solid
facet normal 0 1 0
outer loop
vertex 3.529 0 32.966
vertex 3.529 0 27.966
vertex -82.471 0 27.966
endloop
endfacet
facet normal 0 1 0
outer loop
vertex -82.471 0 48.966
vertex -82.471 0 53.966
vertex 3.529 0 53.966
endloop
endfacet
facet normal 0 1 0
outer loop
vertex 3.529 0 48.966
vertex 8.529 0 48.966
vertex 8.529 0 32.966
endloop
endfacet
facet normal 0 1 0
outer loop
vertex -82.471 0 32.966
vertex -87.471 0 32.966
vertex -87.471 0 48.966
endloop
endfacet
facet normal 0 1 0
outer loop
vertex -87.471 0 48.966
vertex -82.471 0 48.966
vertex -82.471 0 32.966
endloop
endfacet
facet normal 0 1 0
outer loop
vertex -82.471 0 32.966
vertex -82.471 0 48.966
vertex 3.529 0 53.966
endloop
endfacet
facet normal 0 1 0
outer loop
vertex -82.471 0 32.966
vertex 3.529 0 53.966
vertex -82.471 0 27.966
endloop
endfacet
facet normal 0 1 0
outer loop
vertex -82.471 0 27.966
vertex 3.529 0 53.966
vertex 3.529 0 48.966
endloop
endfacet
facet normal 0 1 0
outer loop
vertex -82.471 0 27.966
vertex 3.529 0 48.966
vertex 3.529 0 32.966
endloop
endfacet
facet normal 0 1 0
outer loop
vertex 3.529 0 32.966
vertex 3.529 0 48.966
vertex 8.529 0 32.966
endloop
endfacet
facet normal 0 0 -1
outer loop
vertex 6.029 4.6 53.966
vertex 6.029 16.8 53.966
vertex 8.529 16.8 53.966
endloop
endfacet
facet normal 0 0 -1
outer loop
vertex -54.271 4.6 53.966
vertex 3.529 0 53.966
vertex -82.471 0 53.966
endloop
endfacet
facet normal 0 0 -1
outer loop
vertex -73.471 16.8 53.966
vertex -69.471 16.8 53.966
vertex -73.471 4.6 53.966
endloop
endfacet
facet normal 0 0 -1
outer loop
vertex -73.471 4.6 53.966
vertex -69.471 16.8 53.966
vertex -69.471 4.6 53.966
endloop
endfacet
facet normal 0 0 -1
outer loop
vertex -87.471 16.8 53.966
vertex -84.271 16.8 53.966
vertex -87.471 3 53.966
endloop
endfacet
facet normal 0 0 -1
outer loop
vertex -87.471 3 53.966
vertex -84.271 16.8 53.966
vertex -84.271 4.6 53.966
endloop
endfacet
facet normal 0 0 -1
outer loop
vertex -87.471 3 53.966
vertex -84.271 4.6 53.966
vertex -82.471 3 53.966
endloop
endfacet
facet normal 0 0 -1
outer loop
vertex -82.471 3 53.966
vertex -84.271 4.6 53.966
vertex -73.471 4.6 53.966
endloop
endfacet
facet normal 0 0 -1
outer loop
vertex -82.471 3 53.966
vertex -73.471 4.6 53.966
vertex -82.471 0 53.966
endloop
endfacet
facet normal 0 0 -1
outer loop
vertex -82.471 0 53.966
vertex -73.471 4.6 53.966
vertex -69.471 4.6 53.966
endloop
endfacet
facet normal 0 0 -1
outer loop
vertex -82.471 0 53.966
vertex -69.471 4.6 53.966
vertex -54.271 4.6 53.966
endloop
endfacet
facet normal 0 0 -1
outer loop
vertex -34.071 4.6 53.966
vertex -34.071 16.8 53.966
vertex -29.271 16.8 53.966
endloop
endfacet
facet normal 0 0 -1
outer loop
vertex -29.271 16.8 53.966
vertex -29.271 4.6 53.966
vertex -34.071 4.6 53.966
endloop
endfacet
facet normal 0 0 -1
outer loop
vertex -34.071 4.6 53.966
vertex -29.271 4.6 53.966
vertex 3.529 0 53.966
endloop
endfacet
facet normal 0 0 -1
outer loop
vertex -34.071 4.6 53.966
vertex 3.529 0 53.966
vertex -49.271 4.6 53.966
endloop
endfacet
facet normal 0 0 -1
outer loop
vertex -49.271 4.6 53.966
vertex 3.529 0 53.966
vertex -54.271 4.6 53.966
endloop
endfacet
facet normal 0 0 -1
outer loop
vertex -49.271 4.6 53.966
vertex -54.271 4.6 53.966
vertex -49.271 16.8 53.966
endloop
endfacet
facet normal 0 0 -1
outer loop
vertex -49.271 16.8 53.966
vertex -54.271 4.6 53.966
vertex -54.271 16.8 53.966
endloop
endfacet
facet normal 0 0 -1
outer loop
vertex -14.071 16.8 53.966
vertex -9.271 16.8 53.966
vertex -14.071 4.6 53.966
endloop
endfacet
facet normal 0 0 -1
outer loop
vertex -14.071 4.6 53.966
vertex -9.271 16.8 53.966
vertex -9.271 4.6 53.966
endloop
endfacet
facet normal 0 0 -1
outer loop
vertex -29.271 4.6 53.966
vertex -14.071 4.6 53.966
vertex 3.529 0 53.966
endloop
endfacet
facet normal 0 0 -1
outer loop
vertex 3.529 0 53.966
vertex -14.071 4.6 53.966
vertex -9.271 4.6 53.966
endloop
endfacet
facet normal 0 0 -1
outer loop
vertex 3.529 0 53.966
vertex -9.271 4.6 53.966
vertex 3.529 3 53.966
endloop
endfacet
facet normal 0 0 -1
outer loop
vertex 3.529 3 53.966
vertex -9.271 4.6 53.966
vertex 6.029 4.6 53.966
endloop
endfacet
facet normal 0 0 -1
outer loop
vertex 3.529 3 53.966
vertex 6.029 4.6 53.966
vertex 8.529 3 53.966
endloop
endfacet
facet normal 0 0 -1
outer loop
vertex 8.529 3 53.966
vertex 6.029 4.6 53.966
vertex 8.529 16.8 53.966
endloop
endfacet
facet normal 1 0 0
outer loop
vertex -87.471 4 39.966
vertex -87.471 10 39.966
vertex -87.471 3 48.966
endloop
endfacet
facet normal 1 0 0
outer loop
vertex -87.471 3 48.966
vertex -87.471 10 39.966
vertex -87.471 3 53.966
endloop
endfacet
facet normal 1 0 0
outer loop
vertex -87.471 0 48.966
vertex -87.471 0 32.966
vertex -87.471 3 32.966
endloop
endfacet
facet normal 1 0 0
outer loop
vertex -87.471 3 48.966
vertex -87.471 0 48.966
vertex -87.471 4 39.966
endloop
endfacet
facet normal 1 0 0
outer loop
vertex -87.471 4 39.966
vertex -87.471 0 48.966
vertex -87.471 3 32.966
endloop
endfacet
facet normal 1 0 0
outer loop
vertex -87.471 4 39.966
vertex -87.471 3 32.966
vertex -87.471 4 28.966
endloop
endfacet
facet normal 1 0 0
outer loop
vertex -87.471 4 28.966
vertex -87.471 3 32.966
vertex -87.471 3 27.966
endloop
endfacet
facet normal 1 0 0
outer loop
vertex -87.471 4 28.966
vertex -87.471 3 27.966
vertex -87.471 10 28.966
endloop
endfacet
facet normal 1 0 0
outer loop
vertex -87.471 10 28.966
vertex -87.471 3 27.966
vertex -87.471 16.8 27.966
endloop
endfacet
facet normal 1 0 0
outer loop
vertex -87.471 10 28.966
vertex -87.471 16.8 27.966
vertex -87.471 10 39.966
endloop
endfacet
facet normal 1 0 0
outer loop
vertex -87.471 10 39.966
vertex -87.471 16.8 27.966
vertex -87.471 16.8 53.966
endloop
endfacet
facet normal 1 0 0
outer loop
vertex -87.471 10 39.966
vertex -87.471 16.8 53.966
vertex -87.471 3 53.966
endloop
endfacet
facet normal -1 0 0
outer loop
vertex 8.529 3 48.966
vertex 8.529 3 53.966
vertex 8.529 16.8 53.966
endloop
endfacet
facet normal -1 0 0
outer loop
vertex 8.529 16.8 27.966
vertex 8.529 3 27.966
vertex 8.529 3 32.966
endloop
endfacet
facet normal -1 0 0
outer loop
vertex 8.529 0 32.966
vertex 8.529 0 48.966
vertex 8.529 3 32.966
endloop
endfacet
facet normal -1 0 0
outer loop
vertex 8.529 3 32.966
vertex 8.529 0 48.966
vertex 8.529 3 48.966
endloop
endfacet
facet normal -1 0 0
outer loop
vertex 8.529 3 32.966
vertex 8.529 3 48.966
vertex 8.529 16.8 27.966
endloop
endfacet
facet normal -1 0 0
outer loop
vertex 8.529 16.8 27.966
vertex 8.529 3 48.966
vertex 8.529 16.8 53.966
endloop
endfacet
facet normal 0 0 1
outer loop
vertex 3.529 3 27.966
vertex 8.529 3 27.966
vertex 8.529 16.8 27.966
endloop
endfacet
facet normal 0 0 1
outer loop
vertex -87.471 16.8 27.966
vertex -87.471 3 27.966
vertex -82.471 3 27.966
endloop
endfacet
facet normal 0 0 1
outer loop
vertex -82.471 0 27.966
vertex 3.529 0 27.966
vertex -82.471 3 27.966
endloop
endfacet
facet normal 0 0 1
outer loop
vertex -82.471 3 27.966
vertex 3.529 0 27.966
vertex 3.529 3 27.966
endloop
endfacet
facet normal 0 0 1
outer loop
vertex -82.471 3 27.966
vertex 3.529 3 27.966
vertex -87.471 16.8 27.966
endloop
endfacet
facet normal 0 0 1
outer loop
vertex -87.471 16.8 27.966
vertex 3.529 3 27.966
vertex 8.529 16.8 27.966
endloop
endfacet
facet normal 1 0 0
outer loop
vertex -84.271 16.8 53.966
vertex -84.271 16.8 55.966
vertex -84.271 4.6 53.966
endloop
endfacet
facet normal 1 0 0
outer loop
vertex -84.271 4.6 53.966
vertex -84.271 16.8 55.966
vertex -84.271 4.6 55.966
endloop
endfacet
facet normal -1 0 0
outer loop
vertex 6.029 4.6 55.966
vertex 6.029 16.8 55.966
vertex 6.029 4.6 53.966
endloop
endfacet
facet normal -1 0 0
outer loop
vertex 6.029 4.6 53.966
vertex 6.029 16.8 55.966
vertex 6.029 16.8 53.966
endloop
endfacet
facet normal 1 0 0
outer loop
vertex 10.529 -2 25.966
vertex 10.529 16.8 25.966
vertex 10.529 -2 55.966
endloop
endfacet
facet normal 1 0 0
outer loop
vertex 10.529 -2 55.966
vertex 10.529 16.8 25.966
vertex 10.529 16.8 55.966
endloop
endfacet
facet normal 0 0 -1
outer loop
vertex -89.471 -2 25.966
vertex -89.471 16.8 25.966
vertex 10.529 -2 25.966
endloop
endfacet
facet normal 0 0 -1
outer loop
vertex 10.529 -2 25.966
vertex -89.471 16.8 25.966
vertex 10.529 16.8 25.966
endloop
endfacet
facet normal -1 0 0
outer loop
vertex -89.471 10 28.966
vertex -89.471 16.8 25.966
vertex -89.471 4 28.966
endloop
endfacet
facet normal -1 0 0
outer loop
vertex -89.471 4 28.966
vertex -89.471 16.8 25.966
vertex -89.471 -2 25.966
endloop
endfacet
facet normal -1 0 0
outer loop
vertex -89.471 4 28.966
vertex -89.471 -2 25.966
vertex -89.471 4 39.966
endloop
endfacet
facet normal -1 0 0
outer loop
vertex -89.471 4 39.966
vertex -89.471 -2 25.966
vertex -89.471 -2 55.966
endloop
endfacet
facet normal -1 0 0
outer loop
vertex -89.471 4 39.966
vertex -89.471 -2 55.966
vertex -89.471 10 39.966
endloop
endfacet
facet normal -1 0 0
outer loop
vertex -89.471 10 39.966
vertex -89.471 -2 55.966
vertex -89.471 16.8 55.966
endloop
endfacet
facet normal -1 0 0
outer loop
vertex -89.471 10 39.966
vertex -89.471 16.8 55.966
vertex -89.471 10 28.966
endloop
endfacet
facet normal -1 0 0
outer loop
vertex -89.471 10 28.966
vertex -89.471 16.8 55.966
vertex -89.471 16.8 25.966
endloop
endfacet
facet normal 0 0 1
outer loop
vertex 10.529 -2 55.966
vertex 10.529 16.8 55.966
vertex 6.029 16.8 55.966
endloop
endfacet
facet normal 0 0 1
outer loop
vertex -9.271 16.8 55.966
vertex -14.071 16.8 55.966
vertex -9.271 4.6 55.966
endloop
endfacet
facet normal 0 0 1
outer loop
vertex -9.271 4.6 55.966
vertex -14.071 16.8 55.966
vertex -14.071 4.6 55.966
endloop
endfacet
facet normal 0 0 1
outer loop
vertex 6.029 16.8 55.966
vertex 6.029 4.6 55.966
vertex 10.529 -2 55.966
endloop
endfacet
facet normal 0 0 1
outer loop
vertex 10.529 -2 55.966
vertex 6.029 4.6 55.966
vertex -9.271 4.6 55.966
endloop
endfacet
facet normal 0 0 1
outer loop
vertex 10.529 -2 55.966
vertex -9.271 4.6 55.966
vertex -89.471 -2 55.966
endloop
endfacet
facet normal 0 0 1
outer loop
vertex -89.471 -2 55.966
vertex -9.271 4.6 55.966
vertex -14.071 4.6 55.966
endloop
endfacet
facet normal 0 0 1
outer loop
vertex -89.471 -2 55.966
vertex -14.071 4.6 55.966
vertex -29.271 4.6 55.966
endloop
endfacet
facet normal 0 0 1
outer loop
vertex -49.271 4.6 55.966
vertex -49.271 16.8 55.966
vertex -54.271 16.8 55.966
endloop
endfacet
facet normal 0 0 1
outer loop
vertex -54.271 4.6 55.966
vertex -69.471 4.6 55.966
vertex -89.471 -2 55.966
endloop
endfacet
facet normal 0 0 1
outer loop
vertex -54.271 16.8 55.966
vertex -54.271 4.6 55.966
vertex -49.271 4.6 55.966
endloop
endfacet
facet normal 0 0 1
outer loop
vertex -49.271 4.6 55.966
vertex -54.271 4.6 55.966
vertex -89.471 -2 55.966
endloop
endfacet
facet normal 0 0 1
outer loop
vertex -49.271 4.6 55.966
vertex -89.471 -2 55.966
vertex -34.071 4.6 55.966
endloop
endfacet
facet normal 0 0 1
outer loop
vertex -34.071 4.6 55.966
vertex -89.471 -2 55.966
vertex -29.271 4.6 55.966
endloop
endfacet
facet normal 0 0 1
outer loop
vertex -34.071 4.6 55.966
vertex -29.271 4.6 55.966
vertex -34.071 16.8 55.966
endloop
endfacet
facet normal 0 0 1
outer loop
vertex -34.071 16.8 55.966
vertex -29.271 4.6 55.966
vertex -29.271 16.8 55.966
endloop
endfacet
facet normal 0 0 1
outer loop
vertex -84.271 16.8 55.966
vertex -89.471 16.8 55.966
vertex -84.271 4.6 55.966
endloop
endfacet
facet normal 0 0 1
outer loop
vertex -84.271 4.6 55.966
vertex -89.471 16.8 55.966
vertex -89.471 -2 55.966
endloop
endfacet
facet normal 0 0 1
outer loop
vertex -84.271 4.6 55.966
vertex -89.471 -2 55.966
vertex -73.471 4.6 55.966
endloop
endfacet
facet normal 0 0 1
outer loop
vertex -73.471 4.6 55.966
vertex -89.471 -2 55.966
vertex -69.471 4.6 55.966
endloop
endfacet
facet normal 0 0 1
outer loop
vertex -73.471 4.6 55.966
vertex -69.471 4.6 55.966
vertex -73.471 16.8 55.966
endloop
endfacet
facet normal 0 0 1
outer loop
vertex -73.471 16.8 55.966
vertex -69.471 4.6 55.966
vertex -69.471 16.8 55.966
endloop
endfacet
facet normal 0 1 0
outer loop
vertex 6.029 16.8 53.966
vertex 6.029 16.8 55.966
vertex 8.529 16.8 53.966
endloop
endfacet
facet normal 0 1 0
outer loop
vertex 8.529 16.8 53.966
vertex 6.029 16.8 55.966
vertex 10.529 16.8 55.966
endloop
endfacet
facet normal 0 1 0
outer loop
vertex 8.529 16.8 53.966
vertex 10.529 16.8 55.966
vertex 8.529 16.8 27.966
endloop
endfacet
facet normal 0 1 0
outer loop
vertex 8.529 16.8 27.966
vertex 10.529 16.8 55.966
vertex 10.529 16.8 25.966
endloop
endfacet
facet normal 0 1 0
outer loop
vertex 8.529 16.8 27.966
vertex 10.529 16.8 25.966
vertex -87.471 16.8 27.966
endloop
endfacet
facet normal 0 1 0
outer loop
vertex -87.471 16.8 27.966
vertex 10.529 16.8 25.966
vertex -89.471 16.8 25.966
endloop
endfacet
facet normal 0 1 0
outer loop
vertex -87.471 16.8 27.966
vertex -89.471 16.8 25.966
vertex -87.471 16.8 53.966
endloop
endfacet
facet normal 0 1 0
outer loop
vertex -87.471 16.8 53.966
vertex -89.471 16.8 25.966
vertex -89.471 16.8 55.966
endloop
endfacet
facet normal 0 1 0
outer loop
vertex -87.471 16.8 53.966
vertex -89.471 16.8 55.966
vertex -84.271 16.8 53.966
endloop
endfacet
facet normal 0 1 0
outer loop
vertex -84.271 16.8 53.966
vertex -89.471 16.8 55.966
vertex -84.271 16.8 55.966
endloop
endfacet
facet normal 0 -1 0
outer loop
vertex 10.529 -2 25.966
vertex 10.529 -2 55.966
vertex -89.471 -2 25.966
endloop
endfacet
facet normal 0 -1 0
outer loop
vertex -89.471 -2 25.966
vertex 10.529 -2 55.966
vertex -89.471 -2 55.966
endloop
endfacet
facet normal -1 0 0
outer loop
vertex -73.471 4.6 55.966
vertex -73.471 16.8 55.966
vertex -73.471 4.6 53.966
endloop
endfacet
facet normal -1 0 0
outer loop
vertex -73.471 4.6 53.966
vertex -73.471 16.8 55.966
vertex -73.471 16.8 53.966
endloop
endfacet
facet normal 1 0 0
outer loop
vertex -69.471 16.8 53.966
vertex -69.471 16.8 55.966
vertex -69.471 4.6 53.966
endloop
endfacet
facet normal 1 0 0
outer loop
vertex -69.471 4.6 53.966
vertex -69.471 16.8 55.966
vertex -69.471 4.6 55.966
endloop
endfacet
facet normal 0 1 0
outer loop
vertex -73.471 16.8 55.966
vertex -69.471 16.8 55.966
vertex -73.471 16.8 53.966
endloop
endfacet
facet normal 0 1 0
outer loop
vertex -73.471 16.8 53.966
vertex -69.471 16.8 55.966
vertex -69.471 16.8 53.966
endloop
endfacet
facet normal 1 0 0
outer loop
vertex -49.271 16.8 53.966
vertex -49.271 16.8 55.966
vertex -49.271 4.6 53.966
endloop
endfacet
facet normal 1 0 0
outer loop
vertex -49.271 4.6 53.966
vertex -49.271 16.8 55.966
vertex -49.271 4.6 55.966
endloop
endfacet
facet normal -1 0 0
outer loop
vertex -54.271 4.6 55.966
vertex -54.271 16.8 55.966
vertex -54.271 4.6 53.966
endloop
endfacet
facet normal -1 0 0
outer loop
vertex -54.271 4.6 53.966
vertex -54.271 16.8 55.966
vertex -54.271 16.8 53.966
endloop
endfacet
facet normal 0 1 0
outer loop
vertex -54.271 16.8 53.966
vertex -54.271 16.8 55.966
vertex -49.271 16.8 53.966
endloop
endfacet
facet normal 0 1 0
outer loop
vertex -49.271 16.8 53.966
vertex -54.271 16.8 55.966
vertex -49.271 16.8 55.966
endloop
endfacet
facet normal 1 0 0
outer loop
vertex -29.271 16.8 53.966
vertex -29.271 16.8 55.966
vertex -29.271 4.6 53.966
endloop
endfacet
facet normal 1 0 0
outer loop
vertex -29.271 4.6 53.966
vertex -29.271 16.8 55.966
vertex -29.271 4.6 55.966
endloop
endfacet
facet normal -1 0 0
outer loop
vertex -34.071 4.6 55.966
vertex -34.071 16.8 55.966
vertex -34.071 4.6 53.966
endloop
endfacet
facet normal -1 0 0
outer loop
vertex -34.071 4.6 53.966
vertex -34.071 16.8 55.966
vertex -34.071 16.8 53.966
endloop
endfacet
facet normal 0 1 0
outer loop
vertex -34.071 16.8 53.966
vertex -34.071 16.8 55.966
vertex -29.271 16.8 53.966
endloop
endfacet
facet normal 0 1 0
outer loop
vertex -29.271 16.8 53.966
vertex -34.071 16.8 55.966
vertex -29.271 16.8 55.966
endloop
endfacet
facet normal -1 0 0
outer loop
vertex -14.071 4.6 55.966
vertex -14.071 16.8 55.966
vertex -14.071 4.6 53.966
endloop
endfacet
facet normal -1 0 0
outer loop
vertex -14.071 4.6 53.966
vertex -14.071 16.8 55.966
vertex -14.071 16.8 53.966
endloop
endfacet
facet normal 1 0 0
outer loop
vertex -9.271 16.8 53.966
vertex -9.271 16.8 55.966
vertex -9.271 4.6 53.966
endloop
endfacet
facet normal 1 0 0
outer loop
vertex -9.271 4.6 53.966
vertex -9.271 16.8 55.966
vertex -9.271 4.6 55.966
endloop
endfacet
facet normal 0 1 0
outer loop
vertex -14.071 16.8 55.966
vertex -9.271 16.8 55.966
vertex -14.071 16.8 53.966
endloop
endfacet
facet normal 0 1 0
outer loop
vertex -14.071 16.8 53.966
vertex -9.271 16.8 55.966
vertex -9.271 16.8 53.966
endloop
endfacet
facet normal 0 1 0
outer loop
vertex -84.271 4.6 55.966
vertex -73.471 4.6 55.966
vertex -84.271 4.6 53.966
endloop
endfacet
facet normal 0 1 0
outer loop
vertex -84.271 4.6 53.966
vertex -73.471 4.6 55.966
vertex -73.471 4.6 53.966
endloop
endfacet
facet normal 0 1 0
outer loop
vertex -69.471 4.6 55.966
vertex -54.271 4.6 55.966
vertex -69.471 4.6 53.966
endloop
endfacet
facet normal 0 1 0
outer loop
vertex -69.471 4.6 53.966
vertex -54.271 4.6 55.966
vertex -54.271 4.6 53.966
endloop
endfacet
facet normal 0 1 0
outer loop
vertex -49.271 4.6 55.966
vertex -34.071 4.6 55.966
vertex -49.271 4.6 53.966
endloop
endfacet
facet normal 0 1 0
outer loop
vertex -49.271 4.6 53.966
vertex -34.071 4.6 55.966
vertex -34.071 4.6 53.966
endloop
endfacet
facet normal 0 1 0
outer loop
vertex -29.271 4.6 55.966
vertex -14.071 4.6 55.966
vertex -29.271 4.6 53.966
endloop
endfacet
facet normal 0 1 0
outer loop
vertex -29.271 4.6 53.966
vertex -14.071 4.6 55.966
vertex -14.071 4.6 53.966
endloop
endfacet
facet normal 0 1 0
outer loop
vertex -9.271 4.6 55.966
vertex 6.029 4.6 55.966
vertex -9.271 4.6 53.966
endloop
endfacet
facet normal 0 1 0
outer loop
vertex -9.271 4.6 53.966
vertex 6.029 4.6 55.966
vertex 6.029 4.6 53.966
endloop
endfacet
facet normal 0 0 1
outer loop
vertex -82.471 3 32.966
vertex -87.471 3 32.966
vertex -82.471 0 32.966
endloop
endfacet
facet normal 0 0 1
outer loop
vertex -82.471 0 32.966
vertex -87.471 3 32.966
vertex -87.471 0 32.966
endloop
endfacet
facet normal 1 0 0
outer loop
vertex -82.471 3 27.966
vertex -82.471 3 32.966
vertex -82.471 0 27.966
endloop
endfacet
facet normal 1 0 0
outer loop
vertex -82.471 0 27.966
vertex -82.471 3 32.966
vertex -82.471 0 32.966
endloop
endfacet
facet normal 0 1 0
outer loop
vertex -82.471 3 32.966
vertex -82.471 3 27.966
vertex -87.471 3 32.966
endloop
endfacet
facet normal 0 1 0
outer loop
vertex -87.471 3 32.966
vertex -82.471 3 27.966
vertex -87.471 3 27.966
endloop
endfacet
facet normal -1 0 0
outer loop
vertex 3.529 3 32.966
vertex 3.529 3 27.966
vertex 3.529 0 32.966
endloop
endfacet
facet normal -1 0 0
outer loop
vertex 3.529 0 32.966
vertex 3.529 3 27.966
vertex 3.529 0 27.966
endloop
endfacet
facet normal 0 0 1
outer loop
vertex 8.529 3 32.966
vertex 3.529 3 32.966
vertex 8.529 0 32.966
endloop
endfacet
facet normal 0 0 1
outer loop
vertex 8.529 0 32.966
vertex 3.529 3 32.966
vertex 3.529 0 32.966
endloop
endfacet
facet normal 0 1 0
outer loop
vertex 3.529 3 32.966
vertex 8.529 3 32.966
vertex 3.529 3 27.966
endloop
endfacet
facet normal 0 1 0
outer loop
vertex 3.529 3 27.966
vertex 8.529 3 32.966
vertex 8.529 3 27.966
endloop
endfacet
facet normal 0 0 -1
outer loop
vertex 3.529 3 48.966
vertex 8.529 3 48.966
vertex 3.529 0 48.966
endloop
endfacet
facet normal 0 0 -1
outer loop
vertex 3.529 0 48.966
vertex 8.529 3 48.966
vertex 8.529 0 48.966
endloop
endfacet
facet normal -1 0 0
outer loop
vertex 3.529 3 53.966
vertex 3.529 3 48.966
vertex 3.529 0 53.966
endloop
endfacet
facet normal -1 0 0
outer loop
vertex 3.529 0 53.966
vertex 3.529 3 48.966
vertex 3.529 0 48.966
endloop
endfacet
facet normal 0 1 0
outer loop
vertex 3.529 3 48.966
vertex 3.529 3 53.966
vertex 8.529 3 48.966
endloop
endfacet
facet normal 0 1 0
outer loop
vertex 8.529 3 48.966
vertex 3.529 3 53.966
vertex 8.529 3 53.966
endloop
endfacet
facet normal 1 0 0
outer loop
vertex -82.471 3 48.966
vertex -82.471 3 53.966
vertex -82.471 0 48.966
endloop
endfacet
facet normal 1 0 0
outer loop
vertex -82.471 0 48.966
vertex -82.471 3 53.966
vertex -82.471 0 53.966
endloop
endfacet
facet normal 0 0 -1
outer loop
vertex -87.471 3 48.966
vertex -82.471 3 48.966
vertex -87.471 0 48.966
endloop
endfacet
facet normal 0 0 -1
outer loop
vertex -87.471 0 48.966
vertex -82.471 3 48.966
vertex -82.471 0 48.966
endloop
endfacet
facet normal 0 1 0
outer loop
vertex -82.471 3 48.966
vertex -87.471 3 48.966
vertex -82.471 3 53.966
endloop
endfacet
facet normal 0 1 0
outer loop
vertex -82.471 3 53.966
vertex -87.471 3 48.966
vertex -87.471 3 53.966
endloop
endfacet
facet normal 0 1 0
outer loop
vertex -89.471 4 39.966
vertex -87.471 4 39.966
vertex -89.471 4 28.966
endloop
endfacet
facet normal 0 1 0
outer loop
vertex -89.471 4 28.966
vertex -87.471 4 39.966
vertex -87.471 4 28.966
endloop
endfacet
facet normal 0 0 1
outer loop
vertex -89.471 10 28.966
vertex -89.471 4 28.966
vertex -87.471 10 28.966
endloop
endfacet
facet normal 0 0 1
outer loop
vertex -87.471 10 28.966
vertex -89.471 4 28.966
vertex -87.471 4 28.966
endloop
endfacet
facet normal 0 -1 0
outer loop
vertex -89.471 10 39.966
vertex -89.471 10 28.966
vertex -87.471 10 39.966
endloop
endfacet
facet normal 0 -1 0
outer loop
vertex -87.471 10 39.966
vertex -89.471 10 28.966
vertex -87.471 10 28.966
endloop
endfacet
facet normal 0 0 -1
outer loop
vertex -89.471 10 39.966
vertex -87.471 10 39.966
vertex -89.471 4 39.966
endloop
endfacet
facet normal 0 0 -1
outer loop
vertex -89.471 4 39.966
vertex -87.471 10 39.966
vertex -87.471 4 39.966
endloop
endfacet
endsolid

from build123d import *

# Parameters (mm, degrees)
BOSS_EXTRUDE1_DEPTH   = 16.8
SKETCH1_W             = 4.8
SKETCH1_H             = 2
BOSS_EXTRUDE1_2_DEPTH = 16.8
SKETCH1_W_2           = 4
BOSS_EXTRUDE1_3_DEPTH = 16.8
BOSS_EXTRUDE1_4_DEPTH = 16.8
SKETCH1_W_3           = 5
BOSS_EXTRUDE1_5_DEPTH = 16.8
SKETCH1_3_W           = 100
SKETCH1_3_H           = 30
BOSS_EXTRUDE2_DEPTH   = 2
SKETCH1_6_W           = 15.3
SKETCH1_6_H           = 2
SKETCH1_6_W_2         = 10.8
SKETCH1_6_W_3         = 15.2
BOSS_EXTRUDE4_DEPTH   = 4.6
SKETCH3_W             = 5
SKETCH3_H             = 5
BOSS_EXTRUDE5_DEPTH   = 3
SKETCH4_W             = 11
SKETCH4_H             = 6
CUT_EXTRUDE2_DEPTH    = 4


with BuildPart() as part:
    # Sketch1 → Boss-Extrude1 (new body)
    with BuildSketch(Plane(origin=(0, 0, 0), x_dir=(1, 0, 0), z_dir=(0, 1, 0))):
        Polygon((-87.471226233, -53.96631097), (-87.471226233, -27.96631097), (8.528773767, -27.96631097), (8.528773767, -53.96631097), (6.028773767, -53.96631097), (6.028773767, -55.96631097), (10.528773767, -55.96631097), (10.528773767, -25.96631097), (-89.471226233, -25.96631097), (-89.471226233, -55.96631097), (-84.271226233, -55.96631097), (-84.271226233, -53.96631097), align=None)
    extrude(amount=BOSS_EXTRUDE1_DEPTH)



with BuildPart() as body_2:
    # Sketch1 → Boss-Extrude1 2 (new body)
    with BuildSketch(Plane(origin=(0, 0, 0), x_dir=(1, 0, 0), z_dir=(0, 1, 0))):
        with Locations((-11.671226233, -54.96631097)):
            Rectangle(SKETCH1_W, SKETCH1_H)
    extrude(amount=BOSS_EXTRUDE1_2_DEPTH)


with BuildPart() as body_3:
    # Sketch1 → Boss-Extrude1 3 (new body)
    with BuildSketch(Plane(origin=(0, 0, 0), x_dir=(1, 0, 0), z_dir=(0, 1, 0))):
        with Locations((-71.471226233, -54.96631097)):
            Rectangle(SKETCH1_W_2, SKETCH1_H)
    extrude(amount=BOSS_EXTRUDE1_3_DEPTH)


with BuildPart() as body_4:
    # Sketch1 → Boss-Extrude1 4 (new body)
    with BuildSketch(Plane(origin=(0, 0, 0), x_dir=(1, 0, 0), z_dir=(0, 1, 0))):
        with Locations((-31.671226233, -54.96631097)):
            Rectangle(SKETCH1_W, SKETCH1_H)
    extrude(amount=BOSS_EXTRUDE1_4_DEPTH)


with BuildPart() as body_5:
    # Sketch1 → Boss-Extrude1 5 (new body)
    with BuildSketch(Plane(origin=(0, 0, 0), x_dir=(1, 0, 0), z_dir=(0, 1, 0))):
        with Locations((-51.771226233, -54.96631097)):
            Rectangle(SKETCH1_W_3, SKETCH1_H)
    extrude(amount=BOSS_EXTRUDE1_5_DEPTH)


with BuildPart() as part_1:
    add(part.part)

    add(body_2.part)  # Boss-Extrude2 merges body 2

    add(body_3.part)  # Boss-Extrude2 merges body 3

    add(body_4.part)  # Boss-Extrude2 merges body 4

    add(body_5.part)  # Boss-Extrude2 merges body 5
    # Sketch1<3> → Boss-Extrude2 (add)
    with BuildSketch(Plane(origin=(0, 0, 0), x_dir=(1, 0, 0), z_dir=(0, 1, 0))):
        with Locations((-39.471226233, -40.96631097)):
            Rectangle(SKETCH1_3_W, SKETCH1_3_H)
    extrude(amount=-BOSS_EXTRUDE2_DEPTH)

    # Sketch1<6> → Boss-Extrude4 (add)
    with BuildSketch(Plane(origin=(0, 0, 0), x_dir=(1, 0, 0), z_dir=(0, 1, 0))):
        with Locations((-1.621226233, -54.96631097)):
            Rectangle(SKETCH1_6_W, SKETCH1_6_H)
        with Locations((-78.871226233, -54.96631097)):
            Rectangle(SKETCH1_6_W_2, SKETCH1_6_H)
        with Locations((-21.671226233, -54.96631097)):
            Rectangle(SKETCH1_6_W_3, SKETCH1_6_H)
        with Locations((-61.871226233, -54.96631097)):
            Rectangle(SKETCH1_6_W_3, SKETCH1_6_H)
        with Locations((-41.671226233, -54.96631097)):
            Rectangle(SKETCH1_6_W_3, SKETCH1_6_H)
    extrude(amount=BOSS_EXTRUDE4_DEPTH)

    # Sketch3 → Boss-Extrude5 (add)
    with BuildSketch(Plane(origin=(0, 0, 0), x_dir=(1, 0, 0), z_dir=(0, 1, 0))):
        with Locations((-84.971226233, -30.46631097)):
            Rectangle(SKETCH3_W, SKETCH3_H)
        with Locations((6.028773767, -30.46631097)):
            Rectangle(SKETCH3_W, SKETCH3_H)
        with Locations((6.028773767, -51.46631097)):
            Rectangle(SKETCH3_W, SKETCH3_H)
        with Locations((-84.971226233, -51.46631097)):
            Rectangle(SKETCH3_W, SKETCH3_H)
    extrude(amount=BOSS_EXTRUDE5_DEPTH)

    # Sketch4 → Cut-Extrude2 (cut)
    with BuildSketch(Plane.ZY.offset(89.471226233)):
        with Locations((34.46631097, 7)):
            Rectangle(SKETCH4_W, SKETCH4_H)
    extrude(amount=-CUT_EXTRUDE2_DEPTH, mode=Mode.SUBTRACT)


solid = part_1.part
